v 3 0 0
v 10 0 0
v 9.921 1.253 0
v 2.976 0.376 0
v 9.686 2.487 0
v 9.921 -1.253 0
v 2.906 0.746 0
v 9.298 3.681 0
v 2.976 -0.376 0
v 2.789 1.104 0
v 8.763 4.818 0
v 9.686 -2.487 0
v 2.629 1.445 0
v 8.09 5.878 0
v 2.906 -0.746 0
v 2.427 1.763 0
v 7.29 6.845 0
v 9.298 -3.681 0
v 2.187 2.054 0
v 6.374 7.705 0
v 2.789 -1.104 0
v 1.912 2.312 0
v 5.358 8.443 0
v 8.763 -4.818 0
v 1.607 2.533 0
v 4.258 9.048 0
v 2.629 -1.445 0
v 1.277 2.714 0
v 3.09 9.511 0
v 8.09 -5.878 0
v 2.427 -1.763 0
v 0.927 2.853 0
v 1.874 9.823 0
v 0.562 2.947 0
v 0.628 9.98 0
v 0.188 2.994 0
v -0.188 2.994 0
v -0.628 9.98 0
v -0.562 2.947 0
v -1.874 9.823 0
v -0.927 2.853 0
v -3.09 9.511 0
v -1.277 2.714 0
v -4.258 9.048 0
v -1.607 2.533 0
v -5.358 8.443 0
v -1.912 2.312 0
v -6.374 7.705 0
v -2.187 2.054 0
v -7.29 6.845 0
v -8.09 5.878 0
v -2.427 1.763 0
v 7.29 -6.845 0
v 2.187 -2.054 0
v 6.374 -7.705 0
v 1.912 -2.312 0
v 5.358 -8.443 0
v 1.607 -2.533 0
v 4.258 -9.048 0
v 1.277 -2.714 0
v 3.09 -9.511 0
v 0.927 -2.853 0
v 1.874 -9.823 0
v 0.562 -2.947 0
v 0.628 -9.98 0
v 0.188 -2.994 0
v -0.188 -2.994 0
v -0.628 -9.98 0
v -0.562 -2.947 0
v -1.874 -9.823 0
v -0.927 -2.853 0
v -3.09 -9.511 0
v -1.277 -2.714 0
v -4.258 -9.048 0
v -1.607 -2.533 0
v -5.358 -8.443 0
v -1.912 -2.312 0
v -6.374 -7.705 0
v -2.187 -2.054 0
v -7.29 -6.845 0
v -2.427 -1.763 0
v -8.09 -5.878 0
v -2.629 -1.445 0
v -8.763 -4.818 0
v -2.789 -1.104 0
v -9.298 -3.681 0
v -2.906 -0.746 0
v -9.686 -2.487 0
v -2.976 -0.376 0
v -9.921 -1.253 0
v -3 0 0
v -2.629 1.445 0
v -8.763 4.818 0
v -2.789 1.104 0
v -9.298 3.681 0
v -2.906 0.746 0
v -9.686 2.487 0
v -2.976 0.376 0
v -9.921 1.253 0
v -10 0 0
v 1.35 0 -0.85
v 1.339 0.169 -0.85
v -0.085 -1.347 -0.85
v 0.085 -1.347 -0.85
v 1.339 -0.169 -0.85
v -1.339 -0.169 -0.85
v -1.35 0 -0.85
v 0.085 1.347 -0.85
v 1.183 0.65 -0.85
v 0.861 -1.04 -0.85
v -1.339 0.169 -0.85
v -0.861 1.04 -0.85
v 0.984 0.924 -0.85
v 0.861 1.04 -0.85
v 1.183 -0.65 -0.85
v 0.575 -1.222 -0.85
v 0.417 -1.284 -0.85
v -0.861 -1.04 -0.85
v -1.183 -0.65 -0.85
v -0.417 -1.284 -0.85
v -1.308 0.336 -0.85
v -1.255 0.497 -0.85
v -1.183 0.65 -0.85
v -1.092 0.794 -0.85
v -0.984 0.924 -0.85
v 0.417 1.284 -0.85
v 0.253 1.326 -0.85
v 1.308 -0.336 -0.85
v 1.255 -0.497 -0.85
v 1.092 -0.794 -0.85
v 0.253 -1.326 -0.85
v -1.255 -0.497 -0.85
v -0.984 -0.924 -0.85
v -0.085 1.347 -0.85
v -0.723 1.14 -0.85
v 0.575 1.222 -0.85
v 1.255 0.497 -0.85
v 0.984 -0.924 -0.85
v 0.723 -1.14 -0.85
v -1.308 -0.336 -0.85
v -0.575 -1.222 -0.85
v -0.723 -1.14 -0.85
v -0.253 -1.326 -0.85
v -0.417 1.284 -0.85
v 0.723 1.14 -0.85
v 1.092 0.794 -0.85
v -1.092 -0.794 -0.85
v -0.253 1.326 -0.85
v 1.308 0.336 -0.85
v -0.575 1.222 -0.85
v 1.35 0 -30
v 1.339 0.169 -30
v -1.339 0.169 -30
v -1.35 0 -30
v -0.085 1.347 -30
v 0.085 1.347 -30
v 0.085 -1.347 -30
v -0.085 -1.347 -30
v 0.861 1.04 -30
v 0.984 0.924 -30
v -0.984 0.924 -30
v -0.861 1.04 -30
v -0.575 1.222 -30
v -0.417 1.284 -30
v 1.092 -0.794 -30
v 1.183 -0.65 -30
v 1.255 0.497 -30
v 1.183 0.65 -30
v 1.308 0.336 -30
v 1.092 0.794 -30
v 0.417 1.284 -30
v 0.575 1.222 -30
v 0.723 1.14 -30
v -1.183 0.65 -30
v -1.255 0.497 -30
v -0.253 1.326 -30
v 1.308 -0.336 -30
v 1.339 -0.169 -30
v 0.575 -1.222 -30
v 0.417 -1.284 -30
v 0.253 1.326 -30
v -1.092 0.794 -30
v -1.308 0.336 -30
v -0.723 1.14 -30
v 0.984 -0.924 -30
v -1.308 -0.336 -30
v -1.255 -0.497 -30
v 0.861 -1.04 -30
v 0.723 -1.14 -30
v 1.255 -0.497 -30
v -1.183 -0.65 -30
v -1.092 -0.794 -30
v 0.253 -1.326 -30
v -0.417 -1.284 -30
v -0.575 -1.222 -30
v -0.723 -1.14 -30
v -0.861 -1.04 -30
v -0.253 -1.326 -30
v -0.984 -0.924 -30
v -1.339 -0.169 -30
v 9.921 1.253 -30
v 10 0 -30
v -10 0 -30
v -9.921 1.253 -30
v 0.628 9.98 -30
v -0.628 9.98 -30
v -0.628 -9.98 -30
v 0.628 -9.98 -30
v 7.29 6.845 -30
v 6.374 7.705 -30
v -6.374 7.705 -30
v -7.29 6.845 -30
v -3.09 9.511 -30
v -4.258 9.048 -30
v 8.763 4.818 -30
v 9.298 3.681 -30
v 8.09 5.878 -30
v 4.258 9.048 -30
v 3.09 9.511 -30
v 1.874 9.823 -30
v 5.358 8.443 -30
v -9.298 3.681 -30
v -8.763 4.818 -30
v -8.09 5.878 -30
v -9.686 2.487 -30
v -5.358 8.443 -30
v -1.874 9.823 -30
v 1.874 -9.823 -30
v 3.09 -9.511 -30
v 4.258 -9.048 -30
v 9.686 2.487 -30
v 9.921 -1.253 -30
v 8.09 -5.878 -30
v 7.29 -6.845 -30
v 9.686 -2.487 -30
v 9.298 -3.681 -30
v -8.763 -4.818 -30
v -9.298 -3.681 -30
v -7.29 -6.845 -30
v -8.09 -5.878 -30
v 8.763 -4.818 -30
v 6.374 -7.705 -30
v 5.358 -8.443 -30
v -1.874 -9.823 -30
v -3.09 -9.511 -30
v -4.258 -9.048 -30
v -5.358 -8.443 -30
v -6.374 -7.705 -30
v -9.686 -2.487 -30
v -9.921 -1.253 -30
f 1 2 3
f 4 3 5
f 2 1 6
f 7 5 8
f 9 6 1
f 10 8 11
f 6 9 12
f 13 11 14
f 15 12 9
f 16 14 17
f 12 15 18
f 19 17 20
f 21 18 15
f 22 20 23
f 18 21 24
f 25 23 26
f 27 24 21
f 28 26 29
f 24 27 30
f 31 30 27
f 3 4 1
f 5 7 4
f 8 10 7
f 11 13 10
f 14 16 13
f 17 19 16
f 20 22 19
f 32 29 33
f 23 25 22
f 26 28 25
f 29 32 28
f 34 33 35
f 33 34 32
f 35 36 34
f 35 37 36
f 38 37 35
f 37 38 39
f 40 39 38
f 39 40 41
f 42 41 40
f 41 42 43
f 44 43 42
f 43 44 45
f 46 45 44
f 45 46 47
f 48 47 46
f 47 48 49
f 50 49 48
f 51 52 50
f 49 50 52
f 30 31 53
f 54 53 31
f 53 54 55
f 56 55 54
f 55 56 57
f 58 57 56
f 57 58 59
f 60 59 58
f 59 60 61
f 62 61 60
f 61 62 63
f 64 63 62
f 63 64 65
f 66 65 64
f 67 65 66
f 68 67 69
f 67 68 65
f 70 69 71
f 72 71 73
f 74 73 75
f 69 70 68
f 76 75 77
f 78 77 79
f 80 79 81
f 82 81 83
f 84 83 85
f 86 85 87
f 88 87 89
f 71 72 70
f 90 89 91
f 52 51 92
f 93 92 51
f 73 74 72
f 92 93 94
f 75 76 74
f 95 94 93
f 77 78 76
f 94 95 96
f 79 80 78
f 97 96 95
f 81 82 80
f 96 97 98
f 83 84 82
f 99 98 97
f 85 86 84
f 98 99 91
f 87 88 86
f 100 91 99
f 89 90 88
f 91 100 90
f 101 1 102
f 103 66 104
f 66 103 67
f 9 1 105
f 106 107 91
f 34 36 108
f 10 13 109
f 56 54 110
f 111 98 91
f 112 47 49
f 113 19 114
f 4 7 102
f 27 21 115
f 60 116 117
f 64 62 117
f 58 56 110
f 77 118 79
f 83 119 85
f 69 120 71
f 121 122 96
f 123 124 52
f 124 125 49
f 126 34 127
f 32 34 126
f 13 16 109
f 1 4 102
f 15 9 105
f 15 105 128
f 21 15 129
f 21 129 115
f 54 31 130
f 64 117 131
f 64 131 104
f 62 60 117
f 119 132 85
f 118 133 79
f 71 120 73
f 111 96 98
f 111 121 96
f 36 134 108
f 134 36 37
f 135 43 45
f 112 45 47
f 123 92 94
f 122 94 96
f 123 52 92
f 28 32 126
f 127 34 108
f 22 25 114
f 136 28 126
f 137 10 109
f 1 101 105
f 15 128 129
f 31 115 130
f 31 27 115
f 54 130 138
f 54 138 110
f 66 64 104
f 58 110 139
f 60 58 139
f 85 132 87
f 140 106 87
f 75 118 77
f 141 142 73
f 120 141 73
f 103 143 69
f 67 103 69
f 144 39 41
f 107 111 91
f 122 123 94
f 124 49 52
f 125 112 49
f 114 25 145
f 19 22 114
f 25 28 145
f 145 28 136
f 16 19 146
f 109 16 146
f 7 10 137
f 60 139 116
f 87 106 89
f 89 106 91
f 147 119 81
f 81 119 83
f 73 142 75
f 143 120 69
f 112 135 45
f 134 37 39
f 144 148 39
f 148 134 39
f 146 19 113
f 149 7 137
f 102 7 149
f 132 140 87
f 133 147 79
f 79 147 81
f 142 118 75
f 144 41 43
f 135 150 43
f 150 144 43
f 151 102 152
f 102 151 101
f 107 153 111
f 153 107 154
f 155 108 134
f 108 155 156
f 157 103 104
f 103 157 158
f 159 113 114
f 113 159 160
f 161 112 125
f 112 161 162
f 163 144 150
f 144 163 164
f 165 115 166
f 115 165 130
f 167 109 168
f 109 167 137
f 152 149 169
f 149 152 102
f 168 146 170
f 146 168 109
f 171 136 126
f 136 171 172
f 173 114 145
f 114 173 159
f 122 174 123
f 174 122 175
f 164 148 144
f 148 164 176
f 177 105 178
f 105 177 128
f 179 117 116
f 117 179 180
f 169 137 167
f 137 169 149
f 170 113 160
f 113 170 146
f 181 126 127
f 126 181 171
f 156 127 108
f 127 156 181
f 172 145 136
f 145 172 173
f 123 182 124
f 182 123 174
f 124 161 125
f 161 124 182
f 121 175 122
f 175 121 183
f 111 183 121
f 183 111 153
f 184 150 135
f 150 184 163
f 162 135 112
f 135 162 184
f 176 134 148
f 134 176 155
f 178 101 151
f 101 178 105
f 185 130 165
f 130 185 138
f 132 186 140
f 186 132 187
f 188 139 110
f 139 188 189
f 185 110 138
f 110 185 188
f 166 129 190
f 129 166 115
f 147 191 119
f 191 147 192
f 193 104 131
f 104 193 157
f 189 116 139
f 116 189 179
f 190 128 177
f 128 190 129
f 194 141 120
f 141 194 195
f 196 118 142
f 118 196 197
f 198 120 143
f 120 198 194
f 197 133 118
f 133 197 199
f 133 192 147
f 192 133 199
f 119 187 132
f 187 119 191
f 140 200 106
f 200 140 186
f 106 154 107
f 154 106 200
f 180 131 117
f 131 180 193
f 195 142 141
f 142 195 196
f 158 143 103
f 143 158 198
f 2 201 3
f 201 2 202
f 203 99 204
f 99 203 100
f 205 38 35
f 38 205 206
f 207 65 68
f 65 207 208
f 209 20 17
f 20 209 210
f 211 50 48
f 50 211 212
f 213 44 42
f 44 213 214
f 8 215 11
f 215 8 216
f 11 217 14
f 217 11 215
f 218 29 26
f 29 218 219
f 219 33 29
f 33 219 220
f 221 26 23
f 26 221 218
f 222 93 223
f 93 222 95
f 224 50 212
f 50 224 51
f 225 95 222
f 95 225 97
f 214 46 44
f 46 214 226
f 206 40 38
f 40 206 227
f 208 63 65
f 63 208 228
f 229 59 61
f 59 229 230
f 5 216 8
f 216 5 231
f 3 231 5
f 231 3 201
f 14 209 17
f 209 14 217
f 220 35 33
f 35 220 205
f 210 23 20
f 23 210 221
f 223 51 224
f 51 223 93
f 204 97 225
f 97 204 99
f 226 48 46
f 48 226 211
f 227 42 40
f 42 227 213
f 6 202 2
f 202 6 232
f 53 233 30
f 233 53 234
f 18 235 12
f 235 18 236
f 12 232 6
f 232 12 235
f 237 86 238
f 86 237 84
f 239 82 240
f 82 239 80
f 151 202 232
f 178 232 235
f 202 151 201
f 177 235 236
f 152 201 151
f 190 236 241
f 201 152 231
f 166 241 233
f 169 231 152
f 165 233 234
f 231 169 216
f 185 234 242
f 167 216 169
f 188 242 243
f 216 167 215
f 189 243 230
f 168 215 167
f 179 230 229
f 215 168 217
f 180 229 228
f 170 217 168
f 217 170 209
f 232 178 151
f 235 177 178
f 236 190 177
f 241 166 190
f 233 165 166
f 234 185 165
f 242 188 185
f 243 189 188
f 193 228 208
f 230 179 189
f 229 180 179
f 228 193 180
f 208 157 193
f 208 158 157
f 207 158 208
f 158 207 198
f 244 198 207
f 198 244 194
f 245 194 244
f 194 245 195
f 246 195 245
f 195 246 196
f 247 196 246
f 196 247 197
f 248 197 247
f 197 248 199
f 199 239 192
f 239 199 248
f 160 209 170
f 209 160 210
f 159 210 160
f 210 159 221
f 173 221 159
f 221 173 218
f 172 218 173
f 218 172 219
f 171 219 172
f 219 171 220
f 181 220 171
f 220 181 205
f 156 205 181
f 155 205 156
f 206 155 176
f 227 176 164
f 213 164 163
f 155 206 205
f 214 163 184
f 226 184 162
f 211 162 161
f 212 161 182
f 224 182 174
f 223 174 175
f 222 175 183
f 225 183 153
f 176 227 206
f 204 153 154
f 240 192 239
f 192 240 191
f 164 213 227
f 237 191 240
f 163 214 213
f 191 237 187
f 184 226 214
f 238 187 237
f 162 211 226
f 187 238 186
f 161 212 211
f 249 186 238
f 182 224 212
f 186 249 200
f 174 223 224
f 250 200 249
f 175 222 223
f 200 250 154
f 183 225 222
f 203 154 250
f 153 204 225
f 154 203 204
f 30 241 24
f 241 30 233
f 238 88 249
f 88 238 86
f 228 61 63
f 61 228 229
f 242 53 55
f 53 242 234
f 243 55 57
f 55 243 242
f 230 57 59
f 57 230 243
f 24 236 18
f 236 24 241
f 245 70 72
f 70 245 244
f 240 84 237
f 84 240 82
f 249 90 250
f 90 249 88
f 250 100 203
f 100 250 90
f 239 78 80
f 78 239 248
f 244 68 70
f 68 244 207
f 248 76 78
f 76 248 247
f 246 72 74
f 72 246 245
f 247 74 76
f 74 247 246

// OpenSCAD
$fn = 50;

difference() {
	union() {
		translate(v = [0, 0, -30.0]) {
			cylinder(h = 30, r = 10.0);
		}
	}
	union() {
		translate(v = [0, 0, 0]) {
			rotate(a = [0, 0, 0]) {
				difference() {
					union() {
						translate(v = [0, 0, -33.0]) {
							cylinder(h = 33, r = 1.0);
						}
						translate(v = [0, 0, -0.85]) {
							cylinder(h = 0.85, r1 = 1.35, r2 = 3.0);
						}
						translate(v = [0, 0, -33.0]) {
							cylinder(h = 33, r = 1.35);
						}
						translate(v = [0, 0, -33.0]) {
							cylinder(h = 33, r = 1.0);
						}
					}
					union();
				}
			}
		}
	}
}
